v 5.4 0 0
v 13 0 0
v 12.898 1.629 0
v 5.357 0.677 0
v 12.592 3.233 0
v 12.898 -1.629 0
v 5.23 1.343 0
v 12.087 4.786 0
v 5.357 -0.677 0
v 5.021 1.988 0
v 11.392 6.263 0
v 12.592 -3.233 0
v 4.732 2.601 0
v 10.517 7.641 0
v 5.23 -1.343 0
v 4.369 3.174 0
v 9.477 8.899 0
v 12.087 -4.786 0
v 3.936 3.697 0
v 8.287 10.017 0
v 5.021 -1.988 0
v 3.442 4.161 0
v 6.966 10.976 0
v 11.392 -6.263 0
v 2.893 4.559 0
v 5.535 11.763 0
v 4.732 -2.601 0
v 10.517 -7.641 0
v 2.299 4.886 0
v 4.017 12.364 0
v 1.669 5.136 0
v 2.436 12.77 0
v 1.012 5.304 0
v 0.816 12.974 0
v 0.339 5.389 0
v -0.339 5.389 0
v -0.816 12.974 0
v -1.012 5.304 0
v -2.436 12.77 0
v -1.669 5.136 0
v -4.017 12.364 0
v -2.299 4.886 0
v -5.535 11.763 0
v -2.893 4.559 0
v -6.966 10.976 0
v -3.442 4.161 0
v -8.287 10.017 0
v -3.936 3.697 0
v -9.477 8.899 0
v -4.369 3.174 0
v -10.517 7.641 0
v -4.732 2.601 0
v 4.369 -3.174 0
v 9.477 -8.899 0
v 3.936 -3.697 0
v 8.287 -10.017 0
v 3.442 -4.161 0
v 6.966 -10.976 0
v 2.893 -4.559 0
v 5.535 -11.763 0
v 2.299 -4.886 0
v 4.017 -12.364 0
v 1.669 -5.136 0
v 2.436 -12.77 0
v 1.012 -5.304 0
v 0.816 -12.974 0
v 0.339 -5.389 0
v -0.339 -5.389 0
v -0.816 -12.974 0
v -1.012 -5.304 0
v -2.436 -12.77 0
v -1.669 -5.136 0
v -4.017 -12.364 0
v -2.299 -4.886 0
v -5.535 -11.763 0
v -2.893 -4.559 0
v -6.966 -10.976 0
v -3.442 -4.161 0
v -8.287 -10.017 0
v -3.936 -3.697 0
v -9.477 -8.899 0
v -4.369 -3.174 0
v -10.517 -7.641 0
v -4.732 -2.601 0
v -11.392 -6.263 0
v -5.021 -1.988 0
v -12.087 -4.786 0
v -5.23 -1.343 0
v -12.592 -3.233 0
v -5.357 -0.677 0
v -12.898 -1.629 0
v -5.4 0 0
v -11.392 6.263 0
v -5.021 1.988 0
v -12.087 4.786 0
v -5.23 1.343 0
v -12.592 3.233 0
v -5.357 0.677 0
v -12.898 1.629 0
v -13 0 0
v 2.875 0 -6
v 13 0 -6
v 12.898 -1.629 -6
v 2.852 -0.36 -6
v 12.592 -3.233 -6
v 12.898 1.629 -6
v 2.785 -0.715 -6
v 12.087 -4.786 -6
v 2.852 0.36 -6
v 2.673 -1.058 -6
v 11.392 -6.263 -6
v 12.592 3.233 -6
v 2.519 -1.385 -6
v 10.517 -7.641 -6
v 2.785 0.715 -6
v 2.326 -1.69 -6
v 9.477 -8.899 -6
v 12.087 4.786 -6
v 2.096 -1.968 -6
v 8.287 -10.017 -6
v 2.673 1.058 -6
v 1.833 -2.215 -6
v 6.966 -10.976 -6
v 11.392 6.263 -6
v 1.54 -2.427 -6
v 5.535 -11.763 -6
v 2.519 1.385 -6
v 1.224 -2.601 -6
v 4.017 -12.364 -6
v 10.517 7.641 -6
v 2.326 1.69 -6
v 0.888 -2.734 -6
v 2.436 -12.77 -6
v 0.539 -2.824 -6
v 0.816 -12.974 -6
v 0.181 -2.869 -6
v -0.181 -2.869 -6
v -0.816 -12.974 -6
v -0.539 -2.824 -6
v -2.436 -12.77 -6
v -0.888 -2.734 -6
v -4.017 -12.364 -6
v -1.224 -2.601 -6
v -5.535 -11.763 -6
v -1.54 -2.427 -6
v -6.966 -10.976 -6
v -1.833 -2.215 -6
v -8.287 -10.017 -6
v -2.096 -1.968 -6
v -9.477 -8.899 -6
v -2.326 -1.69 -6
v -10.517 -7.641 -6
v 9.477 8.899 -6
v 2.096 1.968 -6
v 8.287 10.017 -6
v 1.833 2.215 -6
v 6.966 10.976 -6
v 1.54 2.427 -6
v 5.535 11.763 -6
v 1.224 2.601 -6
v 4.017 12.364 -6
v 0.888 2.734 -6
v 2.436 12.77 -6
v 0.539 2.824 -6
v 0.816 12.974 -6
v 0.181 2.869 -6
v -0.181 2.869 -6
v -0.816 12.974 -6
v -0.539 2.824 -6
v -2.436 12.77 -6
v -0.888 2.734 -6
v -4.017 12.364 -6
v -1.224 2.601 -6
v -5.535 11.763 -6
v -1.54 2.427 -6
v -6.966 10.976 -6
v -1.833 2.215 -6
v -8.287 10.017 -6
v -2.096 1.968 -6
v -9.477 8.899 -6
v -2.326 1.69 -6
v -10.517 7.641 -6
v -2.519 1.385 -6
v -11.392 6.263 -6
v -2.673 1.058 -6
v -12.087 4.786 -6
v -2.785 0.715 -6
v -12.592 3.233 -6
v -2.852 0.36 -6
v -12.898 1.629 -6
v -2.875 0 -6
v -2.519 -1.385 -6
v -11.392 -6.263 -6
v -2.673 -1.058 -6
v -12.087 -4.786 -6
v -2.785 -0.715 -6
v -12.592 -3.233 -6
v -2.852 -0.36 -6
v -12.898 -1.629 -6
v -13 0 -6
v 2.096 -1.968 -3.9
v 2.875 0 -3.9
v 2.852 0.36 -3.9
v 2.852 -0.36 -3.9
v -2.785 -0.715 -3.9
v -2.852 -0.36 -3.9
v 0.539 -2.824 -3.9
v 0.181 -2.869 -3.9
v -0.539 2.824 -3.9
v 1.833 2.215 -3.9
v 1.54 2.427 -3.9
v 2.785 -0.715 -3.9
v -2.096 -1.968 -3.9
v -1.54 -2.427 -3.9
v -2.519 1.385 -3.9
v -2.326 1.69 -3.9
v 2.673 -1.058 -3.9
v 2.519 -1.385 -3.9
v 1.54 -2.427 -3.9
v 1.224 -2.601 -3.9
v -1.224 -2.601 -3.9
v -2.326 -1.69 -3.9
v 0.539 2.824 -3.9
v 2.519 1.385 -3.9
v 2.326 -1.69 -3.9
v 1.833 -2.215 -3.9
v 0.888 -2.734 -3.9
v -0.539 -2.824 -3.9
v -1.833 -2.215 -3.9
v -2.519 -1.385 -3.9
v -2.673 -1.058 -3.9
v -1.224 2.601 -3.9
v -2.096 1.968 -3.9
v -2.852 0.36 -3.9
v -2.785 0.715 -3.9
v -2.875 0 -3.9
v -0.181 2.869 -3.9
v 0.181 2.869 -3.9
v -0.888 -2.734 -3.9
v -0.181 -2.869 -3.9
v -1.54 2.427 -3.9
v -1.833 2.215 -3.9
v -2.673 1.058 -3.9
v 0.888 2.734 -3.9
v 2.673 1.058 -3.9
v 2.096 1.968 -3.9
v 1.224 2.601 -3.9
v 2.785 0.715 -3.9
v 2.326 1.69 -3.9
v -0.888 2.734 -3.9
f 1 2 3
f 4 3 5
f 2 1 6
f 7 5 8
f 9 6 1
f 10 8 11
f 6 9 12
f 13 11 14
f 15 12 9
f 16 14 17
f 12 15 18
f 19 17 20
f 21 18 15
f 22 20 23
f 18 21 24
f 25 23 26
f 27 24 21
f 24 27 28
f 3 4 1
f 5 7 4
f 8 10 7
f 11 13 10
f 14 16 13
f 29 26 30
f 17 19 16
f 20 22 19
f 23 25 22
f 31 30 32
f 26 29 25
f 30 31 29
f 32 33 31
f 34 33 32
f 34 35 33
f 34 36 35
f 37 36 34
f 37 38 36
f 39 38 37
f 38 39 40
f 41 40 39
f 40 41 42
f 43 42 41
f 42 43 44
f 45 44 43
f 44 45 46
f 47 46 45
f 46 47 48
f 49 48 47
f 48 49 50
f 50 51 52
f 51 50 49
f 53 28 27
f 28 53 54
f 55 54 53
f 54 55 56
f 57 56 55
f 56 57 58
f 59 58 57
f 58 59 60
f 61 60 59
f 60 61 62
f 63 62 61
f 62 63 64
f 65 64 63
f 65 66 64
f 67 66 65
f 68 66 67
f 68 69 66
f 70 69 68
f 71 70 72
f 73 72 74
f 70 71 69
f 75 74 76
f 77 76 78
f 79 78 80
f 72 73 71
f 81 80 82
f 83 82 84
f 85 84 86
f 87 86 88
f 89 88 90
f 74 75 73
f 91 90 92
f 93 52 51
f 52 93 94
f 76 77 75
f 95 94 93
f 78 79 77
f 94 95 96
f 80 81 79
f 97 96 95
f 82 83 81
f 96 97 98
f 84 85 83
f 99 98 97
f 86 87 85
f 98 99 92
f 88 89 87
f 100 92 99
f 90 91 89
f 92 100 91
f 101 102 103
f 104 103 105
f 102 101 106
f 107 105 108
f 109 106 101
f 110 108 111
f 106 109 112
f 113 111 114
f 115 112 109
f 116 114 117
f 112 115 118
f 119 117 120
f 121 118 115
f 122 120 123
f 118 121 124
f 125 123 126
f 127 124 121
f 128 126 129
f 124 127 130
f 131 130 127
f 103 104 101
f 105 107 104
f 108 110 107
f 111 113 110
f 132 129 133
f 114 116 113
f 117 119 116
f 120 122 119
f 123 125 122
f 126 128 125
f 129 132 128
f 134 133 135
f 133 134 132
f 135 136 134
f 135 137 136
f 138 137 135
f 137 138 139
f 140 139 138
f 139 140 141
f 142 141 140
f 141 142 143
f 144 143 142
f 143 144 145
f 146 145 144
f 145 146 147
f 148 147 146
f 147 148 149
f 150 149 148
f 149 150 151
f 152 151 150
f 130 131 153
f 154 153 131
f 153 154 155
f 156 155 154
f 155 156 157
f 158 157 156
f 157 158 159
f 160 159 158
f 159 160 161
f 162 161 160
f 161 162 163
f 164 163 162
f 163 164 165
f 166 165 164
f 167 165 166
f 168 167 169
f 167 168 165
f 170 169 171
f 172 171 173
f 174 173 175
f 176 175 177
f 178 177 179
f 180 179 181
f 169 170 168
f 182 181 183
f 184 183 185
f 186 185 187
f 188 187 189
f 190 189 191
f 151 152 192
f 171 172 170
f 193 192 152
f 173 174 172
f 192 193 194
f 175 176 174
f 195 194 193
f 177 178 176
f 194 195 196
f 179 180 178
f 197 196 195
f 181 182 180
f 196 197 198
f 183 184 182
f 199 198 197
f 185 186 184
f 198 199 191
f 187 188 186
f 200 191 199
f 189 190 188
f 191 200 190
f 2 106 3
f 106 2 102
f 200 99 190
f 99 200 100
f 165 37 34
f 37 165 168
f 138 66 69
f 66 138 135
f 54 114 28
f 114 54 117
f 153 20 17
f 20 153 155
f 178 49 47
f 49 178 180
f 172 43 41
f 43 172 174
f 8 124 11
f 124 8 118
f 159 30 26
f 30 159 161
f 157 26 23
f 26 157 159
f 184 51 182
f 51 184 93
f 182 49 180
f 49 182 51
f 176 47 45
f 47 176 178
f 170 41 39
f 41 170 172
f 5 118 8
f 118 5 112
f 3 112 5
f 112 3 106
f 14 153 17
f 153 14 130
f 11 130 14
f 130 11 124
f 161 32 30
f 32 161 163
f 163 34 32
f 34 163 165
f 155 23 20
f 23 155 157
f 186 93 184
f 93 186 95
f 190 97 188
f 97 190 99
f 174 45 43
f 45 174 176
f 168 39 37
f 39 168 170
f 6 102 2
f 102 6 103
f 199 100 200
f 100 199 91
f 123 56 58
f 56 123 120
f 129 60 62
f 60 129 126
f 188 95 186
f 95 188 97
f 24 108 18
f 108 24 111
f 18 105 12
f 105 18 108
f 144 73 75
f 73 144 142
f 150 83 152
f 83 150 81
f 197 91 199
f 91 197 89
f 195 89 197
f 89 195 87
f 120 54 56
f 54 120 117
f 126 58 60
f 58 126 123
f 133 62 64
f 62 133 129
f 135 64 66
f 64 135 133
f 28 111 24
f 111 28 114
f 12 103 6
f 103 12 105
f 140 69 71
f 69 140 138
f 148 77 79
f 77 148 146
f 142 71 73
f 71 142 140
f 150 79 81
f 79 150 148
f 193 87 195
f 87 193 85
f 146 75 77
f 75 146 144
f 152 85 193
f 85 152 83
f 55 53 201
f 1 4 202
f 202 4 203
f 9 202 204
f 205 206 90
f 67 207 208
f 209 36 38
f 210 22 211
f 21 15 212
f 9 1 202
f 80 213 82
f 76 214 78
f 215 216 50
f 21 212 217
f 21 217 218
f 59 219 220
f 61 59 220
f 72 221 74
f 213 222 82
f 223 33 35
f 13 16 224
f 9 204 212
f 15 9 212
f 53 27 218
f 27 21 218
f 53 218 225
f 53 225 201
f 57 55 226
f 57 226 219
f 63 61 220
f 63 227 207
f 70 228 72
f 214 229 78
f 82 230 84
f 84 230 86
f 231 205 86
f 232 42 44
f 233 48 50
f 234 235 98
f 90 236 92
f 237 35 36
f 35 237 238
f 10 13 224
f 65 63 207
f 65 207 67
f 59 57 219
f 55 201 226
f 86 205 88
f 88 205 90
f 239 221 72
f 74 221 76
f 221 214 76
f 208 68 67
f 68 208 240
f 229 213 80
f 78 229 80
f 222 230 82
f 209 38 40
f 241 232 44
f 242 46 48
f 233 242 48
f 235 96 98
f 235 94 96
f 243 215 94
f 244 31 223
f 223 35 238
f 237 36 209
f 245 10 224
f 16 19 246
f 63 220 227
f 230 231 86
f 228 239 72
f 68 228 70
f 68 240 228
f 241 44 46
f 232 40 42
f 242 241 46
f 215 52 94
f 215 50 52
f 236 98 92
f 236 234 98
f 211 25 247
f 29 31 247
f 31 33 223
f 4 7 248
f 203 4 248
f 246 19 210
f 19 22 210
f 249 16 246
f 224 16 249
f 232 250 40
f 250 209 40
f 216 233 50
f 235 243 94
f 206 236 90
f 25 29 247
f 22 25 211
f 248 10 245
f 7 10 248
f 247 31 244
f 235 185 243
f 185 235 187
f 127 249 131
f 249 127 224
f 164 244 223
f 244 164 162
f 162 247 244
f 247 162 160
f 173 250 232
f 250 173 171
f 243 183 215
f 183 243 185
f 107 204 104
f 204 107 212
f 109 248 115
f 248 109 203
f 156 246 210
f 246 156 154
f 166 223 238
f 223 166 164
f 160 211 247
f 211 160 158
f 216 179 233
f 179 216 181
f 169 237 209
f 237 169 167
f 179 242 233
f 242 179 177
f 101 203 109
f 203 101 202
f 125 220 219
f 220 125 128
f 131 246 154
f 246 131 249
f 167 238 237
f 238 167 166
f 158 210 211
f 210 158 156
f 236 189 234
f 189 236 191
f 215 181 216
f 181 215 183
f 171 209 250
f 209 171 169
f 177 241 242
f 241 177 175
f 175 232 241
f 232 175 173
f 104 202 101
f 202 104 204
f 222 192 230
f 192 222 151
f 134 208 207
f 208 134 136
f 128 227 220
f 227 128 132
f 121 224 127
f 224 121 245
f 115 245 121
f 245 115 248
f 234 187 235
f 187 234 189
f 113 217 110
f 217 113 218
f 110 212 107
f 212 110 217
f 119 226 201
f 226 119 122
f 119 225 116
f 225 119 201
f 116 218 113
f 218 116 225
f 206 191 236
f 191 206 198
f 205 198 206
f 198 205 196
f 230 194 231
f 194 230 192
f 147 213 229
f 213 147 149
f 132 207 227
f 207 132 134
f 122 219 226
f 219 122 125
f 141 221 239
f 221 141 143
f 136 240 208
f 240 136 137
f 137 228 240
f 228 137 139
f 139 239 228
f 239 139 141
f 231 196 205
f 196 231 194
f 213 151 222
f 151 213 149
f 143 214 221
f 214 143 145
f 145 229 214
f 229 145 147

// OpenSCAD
$fn = 50;


difference() {
	union() {
		translate(v = [0, 0, -6.0000000000]) {
			cylinder(h = 6, r = 7.0000000000);
		}
		translate(v = [0, 0, -6.0000000000]) {
			cylinder(h = 6, r = 13.0000000000);
		}
	}
	union() {
		translate(v = [0, 0, 0]) {
			rotate(a = [0, 0, 0]) {
				difference() {
					union() {
						#translate(v = [0, 0, -6.0000000000]) {
							cylinder(h = 6, r = 2.6000000000);
						}
						#translate(v = [0, 0, -3.9000000000]) {
							cylinder(h = 3.9000000000, r = 7.0000000000, r1 = 2.8750000000, r2 = 5.4000000000);
						}
						#translate(v = [0, 0, -6.0000000000]) {
							cylinder(h = 6, r = 2.8750000000);
						}
						#translate(v = [0, 0, -6.0000000000]) {
							cylinder(h = 6, r = 2.6000000000);
						}
					}
					union();
				}
			}
		}
	}
}
